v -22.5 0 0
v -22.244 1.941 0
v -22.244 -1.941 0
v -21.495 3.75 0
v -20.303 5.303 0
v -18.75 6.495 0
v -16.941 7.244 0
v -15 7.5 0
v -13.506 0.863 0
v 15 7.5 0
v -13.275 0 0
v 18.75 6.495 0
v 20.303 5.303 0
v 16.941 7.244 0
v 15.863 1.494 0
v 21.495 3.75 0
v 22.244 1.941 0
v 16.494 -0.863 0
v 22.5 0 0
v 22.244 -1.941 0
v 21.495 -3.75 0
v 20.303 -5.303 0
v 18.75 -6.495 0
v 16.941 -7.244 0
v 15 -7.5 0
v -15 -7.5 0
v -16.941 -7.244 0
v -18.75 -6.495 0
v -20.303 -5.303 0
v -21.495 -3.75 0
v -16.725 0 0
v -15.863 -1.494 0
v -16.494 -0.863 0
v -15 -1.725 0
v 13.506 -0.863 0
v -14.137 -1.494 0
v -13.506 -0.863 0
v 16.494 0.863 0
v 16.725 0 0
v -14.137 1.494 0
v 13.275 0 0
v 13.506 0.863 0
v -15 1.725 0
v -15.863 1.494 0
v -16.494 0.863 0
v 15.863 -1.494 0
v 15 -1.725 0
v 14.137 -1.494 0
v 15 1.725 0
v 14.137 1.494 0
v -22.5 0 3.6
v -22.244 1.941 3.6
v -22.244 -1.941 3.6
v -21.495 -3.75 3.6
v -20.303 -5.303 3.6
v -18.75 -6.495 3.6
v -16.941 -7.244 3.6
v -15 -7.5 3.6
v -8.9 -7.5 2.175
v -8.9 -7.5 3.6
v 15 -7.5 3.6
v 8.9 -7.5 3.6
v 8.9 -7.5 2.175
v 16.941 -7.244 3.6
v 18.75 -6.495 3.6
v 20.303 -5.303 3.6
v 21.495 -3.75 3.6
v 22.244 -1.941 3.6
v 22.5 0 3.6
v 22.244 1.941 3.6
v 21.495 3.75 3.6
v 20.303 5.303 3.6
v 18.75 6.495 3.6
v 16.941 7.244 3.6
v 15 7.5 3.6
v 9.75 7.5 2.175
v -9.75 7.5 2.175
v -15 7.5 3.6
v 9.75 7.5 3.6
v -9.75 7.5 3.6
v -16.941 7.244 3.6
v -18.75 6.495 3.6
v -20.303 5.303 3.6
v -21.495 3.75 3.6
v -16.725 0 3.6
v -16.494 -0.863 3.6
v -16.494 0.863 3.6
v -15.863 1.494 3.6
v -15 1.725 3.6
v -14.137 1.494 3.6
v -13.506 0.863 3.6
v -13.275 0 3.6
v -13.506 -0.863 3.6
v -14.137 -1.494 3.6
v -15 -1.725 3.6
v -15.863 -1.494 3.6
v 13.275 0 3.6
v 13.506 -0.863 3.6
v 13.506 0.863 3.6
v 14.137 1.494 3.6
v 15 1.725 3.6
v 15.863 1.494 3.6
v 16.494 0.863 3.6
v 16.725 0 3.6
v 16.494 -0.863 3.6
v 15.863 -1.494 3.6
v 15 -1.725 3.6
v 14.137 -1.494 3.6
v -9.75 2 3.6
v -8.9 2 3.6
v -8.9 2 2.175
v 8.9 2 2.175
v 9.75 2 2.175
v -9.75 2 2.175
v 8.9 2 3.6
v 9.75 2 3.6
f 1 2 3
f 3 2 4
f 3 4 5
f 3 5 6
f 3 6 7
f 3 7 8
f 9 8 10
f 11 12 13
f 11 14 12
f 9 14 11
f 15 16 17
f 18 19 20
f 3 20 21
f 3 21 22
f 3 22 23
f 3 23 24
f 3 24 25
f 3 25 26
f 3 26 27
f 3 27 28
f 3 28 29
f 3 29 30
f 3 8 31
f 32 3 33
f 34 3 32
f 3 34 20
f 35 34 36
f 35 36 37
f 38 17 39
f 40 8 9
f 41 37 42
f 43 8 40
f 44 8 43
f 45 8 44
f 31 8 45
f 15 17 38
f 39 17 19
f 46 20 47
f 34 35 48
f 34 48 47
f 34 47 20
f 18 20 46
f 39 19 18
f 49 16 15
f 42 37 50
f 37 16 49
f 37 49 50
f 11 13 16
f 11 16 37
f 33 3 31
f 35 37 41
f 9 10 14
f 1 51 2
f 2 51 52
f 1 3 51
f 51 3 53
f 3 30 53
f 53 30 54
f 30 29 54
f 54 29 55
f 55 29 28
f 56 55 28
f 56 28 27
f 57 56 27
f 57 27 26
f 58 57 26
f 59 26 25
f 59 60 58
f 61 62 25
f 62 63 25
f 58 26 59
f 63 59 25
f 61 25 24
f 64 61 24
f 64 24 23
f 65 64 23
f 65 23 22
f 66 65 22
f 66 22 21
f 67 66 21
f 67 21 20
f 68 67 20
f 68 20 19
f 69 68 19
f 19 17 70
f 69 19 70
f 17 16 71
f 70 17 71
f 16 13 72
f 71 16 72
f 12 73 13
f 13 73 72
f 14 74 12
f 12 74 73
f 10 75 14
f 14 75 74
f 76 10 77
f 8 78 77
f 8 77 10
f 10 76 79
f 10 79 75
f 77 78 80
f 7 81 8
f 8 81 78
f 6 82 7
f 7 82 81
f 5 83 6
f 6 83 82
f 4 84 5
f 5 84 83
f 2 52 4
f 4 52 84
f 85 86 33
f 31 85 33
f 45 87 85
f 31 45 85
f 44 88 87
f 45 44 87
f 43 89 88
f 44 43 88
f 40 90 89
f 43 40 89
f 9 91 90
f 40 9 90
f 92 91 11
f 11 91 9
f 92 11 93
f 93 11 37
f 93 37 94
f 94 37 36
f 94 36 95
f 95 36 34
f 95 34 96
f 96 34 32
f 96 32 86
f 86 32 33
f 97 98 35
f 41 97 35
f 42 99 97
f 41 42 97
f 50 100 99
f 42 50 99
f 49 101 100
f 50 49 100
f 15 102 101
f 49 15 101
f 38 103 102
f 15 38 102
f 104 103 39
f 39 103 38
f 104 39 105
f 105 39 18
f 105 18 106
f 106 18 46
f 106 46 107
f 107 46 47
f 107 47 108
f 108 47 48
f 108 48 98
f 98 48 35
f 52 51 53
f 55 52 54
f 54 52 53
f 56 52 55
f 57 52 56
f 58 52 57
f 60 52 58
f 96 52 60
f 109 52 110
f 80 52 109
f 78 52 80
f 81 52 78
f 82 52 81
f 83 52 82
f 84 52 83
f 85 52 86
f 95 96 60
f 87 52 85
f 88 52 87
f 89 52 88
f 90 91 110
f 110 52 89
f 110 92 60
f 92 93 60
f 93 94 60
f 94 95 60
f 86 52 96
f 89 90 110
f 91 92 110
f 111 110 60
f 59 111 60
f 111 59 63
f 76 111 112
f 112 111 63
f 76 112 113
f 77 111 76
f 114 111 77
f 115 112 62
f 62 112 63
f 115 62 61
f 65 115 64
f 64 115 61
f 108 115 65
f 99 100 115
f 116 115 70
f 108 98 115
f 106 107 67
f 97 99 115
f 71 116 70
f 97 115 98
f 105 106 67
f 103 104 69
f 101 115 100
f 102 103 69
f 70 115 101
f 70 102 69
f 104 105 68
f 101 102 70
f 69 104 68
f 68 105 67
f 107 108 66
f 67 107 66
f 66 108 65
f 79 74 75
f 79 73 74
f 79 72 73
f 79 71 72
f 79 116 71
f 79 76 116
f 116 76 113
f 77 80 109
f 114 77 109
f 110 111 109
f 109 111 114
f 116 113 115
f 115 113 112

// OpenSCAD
// file: configuration.scad
// Increase this if your slicer or printer make holes too tight.
extra_radius = 0.1;

// OD = outside diameter, corner to corner.
m3_nut_od = 6.1;
m3_nut_radius = m3_nut_od/2 + 0.2 + extra_radius;

// Major diameter of metric 3mm thread.
m3_major = 2.85;
m3_radius = m3_major/2 + extra_radius;
m3_wide_radius = m3_major/2 + extra_radius + 0.2;

// NEMA17 stepper motors.
motor_shaft_diameter = 5;
motor_shaft_radius = motor_shaft_diameter/2 + extra_radius;

// Frame brackets.
thickness = 3.6;
// main file
include <configuration.scad>;

radius = 7.5;

difference() {
  union() {
    for (x = [-2*radius, 2*radius]) {
      translate([x, 0, thickness/2])
        cylinder(r=radius, h=thickness, center=true, $fn=24);
    }
    translate([0, 0, thickness/2])
      cube([4*radius, 2*radius, thickness], center=true);
  }
  for (x = [-2*radius, 2*radius]) {
    translate([x, 0, 0]) #
      cylinder(r=m3_wide_radius, h=20, center=true, $fn=12);
  }
  translate([0, 0, 7.5+(15-12.85)/2]) #
    cube([17.6+2*extra_radius, 20, 12.8], center=true);
  translate([0, 7.5, 7.5+(15-12.85)/2]) #
    cube([19.3+2*extra_radius, 11, 12.8], center=true);
}
